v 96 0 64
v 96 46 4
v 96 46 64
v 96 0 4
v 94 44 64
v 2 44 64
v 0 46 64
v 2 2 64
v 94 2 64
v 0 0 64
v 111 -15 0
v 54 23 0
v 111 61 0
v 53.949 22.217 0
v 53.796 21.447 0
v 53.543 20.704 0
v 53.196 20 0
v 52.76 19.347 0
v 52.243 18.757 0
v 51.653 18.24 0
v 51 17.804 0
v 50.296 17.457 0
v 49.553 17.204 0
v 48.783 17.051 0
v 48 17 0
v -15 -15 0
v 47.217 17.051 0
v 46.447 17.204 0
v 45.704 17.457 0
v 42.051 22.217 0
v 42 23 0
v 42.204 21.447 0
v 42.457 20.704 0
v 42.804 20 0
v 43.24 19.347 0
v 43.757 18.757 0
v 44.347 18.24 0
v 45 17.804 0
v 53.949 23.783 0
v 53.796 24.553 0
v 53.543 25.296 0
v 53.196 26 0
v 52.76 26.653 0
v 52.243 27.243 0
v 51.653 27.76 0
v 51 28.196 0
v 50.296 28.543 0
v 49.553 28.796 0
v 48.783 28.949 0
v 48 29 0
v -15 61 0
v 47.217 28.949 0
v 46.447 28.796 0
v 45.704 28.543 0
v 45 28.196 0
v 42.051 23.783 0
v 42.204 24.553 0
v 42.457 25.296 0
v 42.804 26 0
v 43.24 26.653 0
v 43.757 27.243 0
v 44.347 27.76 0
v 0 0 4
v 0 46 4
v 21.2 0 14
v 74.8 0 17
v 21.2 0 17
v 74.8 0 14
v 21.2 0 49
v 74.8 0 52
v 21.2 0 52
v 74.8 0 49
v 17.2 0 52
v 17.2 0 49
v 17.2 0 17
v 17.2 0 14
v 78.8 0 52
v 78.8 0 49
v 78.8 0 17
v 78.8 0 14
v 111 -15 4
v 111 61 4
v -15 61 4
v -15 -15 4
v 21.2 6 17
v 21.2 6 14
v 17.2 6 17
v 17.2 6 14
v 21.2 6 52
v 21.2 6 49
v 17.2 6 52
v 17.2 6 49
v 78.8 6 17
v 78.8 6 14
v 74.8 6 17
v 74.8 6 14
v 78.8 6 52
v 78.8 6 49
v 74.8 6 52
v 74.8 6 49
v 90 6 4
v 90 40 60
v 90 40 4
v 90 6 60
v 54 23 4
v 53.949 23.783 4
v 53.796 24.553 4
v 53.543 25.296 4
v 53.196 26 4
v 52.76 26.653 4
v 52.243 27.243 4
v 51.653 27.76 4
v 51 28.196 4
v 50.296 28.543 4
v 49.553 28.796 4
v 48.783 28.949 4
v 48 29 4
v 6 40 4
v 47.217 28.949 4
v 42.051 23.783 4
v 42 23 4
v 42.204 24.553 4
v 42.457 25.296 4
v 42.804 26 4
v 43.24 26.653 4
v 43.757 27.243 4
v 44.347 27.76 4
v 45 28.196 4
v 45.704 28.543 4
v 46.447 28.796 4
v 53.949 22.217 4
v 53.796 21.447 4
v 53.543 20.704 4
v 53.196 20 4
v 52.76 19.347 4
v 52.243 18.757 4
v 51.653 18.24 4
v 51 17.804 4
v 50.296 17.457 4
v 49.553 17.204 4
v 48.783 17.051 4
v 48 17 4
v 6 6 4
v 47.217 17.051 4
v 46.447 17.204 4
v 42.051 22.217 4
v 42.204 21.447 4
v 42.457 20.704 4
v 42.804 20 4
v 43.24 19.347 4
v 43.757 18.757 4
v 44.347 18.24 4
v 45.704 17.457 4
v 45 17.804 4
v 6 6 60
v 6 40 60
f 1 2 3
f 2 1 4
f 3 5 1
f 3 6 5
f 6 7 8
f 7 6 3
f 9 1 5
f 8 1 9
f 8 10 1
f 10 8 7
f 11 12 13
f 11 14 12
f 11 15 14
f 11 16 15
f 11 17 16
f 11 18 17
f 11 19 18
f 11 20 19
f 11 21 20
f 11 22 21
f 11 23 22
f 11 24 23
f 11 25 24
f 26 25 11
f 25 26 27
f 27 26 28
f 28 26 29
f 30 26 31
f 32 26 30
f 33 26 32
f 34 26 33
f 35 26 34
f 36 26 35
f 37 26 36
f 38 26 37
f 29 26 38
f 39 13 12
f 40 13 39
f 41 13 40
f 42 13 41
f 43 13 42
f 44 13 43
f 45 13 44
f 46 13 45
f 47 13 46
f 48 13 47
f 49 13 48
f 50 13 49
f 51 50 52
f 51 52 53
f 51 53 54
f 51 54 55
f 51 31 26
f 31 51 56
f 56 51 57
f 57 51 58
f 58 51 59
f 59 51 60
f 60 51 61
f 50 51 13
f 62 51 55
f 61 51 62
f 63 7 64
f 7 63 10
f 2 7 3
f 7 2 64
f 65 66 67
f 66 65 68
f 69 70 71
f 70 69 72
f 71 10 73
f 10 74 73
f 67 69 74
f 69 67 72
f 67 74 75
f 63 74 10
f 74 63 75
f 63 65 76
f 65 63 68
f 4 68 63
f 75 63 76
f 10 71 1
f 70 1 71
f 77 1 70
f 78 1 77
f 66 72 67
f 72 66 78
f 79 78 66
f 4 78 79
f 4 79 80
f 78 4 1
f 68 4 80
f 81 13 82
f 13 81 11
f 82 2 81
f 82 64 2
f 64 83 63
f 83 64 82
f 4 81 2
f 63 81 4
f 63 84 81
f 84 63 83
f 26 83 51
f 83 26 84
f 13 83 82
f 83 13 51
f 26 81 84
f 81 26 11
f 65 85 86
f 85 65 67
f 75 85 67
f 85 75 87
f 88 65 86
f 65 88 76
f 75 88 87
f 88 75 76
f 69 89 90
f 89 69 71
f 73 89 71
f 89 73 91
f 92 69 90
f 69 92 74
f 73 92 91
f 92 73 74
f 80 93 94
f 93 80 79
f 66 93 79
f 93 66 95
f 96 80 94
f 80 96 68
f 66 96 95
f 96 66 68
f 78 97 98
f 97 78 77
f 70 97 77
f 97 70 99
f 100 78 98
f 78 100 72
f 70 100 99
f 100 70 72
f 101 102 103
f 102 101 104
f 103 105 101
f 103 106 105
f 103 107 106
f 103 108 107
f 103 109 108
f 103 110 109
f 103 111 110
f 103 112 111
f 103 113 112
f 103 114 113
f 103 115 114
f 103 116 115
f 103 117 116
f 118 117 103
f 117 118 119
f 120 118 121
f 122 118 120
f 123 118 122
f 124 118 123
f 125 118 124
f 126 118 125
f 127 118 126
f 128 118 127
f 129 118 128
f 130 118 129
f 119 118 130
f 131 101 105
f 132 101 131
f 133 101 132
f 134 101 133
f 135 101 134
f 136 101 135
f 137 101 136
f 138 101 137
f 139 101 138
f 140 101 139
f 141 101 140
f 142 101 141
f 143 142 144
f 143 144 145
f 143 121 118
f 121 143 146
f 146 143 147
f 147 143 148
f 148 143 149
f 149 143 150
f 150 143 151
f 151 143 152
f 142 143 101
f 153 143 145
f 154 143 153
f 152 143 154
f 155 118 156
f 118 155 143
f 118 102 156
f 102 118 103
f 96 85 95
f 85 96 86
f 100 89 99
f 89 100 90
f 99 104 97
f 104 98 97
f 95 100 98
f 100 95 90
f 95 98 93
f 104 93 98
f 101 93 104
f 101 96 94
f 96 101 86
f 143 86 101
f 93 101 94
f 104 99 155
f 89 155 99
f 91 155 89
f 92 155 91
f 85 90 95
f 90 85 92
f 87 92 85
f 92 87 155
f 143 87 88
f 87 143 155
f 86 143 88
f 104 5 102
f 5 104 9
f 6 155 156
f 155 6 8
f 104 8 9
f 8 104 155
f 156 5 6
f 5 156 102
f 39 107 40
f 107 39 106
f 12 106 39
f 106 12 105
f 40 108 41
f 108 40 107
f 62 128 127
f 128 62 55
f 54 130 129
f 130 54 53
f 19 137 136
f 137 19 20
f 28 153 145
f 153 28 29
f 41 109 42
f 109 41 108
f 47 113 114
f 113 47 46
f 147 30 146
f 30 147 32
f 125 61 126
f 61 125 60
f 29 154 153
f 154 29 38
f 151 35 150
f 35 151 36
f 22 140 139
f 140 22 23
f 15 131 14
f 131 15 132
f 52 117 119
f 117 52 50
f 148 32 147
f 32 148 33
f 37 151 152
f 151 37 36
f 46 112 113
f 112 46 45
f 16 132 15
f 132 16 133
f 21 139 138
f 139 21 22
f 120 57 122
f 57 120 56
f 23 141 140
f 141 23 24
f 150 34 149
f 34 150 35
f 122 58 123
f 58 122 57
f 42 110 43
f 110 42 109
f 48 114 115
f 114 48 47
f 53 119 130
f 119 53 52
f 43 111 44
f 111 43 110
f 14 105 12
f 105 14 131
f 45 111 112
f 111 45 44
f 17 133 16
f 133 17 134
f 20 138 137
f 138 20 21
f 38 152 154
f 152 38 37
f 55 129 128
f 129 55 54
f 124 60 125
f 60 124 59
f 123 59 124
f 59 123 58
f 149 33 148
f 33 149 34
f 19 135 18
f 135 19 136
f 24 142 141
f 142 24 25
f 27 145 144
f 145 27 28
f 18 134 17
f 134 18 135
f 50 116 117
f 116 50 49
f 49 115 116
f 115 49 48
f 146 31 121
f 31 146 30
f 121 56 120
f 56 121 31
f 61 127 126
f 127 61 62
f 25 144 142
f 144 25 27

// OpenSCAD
// Slot mock-up: the cartridge sleeve as a standalone print, for testing
// cartridge fit, the microswitch-free NFC-only removal detection, and PN532 placement
// before committing to the wooden box.
// Interior matches docs/enclosure.md: 34 x 84 mm opening, 60 mm deep, 45-degree lead-in.
inner_w = 84;   // along the cartridge width
inner_t = 34;   // along the cartridge thickness
depth   = 60;   // insertion depth
wall    = 6;    // same as the 6 mm plywood sleeve, so NFC tests are realistic
floor_t = 4;
lip     = 4;    // chamfer size at the opening
crumb_d = 12;   // clean-out hole in the floor
$fn = 48;

ow = inner_w + 2 * wall;
ot = inner_t + 2 * wall;
oh = depth + floor_t;

difference() {
    union() {
        cube([ow, ot, oh]);
        // flange so it sits flat on a desk / can be clamped
        translate([-15, -15, 0]) cube([ow + 30, ot + 30, 4]);
    }
    translate([wall, wall, floor_t]) cube([inner_w, inner_t, depth + 1]);
    // 45-degree lead-in chamfer
    translate([wall, wall, oh]) hull() {
        translate([0, 0, -lip]) cube([inner_w, inner_t, 0.01]);
        translate([-lip, -lip, 0]) cube([inner_w + 2 * lip, inner_t + 2 * lip, 0.01]);
    }
    translate([ow / 2, ot / 2, -1]) cylinder(d = crumb_d, h = floor_t + 2);
    // zip-tie slots on the back wall to strap a PN532 board against it
    for (x = [ow * 0.2, ow * 0.8], z = [floor_t + 10, floor_t + 45])
        translate([x - 2, -1, z]) cube([4, wall + 2, 3]);
}
